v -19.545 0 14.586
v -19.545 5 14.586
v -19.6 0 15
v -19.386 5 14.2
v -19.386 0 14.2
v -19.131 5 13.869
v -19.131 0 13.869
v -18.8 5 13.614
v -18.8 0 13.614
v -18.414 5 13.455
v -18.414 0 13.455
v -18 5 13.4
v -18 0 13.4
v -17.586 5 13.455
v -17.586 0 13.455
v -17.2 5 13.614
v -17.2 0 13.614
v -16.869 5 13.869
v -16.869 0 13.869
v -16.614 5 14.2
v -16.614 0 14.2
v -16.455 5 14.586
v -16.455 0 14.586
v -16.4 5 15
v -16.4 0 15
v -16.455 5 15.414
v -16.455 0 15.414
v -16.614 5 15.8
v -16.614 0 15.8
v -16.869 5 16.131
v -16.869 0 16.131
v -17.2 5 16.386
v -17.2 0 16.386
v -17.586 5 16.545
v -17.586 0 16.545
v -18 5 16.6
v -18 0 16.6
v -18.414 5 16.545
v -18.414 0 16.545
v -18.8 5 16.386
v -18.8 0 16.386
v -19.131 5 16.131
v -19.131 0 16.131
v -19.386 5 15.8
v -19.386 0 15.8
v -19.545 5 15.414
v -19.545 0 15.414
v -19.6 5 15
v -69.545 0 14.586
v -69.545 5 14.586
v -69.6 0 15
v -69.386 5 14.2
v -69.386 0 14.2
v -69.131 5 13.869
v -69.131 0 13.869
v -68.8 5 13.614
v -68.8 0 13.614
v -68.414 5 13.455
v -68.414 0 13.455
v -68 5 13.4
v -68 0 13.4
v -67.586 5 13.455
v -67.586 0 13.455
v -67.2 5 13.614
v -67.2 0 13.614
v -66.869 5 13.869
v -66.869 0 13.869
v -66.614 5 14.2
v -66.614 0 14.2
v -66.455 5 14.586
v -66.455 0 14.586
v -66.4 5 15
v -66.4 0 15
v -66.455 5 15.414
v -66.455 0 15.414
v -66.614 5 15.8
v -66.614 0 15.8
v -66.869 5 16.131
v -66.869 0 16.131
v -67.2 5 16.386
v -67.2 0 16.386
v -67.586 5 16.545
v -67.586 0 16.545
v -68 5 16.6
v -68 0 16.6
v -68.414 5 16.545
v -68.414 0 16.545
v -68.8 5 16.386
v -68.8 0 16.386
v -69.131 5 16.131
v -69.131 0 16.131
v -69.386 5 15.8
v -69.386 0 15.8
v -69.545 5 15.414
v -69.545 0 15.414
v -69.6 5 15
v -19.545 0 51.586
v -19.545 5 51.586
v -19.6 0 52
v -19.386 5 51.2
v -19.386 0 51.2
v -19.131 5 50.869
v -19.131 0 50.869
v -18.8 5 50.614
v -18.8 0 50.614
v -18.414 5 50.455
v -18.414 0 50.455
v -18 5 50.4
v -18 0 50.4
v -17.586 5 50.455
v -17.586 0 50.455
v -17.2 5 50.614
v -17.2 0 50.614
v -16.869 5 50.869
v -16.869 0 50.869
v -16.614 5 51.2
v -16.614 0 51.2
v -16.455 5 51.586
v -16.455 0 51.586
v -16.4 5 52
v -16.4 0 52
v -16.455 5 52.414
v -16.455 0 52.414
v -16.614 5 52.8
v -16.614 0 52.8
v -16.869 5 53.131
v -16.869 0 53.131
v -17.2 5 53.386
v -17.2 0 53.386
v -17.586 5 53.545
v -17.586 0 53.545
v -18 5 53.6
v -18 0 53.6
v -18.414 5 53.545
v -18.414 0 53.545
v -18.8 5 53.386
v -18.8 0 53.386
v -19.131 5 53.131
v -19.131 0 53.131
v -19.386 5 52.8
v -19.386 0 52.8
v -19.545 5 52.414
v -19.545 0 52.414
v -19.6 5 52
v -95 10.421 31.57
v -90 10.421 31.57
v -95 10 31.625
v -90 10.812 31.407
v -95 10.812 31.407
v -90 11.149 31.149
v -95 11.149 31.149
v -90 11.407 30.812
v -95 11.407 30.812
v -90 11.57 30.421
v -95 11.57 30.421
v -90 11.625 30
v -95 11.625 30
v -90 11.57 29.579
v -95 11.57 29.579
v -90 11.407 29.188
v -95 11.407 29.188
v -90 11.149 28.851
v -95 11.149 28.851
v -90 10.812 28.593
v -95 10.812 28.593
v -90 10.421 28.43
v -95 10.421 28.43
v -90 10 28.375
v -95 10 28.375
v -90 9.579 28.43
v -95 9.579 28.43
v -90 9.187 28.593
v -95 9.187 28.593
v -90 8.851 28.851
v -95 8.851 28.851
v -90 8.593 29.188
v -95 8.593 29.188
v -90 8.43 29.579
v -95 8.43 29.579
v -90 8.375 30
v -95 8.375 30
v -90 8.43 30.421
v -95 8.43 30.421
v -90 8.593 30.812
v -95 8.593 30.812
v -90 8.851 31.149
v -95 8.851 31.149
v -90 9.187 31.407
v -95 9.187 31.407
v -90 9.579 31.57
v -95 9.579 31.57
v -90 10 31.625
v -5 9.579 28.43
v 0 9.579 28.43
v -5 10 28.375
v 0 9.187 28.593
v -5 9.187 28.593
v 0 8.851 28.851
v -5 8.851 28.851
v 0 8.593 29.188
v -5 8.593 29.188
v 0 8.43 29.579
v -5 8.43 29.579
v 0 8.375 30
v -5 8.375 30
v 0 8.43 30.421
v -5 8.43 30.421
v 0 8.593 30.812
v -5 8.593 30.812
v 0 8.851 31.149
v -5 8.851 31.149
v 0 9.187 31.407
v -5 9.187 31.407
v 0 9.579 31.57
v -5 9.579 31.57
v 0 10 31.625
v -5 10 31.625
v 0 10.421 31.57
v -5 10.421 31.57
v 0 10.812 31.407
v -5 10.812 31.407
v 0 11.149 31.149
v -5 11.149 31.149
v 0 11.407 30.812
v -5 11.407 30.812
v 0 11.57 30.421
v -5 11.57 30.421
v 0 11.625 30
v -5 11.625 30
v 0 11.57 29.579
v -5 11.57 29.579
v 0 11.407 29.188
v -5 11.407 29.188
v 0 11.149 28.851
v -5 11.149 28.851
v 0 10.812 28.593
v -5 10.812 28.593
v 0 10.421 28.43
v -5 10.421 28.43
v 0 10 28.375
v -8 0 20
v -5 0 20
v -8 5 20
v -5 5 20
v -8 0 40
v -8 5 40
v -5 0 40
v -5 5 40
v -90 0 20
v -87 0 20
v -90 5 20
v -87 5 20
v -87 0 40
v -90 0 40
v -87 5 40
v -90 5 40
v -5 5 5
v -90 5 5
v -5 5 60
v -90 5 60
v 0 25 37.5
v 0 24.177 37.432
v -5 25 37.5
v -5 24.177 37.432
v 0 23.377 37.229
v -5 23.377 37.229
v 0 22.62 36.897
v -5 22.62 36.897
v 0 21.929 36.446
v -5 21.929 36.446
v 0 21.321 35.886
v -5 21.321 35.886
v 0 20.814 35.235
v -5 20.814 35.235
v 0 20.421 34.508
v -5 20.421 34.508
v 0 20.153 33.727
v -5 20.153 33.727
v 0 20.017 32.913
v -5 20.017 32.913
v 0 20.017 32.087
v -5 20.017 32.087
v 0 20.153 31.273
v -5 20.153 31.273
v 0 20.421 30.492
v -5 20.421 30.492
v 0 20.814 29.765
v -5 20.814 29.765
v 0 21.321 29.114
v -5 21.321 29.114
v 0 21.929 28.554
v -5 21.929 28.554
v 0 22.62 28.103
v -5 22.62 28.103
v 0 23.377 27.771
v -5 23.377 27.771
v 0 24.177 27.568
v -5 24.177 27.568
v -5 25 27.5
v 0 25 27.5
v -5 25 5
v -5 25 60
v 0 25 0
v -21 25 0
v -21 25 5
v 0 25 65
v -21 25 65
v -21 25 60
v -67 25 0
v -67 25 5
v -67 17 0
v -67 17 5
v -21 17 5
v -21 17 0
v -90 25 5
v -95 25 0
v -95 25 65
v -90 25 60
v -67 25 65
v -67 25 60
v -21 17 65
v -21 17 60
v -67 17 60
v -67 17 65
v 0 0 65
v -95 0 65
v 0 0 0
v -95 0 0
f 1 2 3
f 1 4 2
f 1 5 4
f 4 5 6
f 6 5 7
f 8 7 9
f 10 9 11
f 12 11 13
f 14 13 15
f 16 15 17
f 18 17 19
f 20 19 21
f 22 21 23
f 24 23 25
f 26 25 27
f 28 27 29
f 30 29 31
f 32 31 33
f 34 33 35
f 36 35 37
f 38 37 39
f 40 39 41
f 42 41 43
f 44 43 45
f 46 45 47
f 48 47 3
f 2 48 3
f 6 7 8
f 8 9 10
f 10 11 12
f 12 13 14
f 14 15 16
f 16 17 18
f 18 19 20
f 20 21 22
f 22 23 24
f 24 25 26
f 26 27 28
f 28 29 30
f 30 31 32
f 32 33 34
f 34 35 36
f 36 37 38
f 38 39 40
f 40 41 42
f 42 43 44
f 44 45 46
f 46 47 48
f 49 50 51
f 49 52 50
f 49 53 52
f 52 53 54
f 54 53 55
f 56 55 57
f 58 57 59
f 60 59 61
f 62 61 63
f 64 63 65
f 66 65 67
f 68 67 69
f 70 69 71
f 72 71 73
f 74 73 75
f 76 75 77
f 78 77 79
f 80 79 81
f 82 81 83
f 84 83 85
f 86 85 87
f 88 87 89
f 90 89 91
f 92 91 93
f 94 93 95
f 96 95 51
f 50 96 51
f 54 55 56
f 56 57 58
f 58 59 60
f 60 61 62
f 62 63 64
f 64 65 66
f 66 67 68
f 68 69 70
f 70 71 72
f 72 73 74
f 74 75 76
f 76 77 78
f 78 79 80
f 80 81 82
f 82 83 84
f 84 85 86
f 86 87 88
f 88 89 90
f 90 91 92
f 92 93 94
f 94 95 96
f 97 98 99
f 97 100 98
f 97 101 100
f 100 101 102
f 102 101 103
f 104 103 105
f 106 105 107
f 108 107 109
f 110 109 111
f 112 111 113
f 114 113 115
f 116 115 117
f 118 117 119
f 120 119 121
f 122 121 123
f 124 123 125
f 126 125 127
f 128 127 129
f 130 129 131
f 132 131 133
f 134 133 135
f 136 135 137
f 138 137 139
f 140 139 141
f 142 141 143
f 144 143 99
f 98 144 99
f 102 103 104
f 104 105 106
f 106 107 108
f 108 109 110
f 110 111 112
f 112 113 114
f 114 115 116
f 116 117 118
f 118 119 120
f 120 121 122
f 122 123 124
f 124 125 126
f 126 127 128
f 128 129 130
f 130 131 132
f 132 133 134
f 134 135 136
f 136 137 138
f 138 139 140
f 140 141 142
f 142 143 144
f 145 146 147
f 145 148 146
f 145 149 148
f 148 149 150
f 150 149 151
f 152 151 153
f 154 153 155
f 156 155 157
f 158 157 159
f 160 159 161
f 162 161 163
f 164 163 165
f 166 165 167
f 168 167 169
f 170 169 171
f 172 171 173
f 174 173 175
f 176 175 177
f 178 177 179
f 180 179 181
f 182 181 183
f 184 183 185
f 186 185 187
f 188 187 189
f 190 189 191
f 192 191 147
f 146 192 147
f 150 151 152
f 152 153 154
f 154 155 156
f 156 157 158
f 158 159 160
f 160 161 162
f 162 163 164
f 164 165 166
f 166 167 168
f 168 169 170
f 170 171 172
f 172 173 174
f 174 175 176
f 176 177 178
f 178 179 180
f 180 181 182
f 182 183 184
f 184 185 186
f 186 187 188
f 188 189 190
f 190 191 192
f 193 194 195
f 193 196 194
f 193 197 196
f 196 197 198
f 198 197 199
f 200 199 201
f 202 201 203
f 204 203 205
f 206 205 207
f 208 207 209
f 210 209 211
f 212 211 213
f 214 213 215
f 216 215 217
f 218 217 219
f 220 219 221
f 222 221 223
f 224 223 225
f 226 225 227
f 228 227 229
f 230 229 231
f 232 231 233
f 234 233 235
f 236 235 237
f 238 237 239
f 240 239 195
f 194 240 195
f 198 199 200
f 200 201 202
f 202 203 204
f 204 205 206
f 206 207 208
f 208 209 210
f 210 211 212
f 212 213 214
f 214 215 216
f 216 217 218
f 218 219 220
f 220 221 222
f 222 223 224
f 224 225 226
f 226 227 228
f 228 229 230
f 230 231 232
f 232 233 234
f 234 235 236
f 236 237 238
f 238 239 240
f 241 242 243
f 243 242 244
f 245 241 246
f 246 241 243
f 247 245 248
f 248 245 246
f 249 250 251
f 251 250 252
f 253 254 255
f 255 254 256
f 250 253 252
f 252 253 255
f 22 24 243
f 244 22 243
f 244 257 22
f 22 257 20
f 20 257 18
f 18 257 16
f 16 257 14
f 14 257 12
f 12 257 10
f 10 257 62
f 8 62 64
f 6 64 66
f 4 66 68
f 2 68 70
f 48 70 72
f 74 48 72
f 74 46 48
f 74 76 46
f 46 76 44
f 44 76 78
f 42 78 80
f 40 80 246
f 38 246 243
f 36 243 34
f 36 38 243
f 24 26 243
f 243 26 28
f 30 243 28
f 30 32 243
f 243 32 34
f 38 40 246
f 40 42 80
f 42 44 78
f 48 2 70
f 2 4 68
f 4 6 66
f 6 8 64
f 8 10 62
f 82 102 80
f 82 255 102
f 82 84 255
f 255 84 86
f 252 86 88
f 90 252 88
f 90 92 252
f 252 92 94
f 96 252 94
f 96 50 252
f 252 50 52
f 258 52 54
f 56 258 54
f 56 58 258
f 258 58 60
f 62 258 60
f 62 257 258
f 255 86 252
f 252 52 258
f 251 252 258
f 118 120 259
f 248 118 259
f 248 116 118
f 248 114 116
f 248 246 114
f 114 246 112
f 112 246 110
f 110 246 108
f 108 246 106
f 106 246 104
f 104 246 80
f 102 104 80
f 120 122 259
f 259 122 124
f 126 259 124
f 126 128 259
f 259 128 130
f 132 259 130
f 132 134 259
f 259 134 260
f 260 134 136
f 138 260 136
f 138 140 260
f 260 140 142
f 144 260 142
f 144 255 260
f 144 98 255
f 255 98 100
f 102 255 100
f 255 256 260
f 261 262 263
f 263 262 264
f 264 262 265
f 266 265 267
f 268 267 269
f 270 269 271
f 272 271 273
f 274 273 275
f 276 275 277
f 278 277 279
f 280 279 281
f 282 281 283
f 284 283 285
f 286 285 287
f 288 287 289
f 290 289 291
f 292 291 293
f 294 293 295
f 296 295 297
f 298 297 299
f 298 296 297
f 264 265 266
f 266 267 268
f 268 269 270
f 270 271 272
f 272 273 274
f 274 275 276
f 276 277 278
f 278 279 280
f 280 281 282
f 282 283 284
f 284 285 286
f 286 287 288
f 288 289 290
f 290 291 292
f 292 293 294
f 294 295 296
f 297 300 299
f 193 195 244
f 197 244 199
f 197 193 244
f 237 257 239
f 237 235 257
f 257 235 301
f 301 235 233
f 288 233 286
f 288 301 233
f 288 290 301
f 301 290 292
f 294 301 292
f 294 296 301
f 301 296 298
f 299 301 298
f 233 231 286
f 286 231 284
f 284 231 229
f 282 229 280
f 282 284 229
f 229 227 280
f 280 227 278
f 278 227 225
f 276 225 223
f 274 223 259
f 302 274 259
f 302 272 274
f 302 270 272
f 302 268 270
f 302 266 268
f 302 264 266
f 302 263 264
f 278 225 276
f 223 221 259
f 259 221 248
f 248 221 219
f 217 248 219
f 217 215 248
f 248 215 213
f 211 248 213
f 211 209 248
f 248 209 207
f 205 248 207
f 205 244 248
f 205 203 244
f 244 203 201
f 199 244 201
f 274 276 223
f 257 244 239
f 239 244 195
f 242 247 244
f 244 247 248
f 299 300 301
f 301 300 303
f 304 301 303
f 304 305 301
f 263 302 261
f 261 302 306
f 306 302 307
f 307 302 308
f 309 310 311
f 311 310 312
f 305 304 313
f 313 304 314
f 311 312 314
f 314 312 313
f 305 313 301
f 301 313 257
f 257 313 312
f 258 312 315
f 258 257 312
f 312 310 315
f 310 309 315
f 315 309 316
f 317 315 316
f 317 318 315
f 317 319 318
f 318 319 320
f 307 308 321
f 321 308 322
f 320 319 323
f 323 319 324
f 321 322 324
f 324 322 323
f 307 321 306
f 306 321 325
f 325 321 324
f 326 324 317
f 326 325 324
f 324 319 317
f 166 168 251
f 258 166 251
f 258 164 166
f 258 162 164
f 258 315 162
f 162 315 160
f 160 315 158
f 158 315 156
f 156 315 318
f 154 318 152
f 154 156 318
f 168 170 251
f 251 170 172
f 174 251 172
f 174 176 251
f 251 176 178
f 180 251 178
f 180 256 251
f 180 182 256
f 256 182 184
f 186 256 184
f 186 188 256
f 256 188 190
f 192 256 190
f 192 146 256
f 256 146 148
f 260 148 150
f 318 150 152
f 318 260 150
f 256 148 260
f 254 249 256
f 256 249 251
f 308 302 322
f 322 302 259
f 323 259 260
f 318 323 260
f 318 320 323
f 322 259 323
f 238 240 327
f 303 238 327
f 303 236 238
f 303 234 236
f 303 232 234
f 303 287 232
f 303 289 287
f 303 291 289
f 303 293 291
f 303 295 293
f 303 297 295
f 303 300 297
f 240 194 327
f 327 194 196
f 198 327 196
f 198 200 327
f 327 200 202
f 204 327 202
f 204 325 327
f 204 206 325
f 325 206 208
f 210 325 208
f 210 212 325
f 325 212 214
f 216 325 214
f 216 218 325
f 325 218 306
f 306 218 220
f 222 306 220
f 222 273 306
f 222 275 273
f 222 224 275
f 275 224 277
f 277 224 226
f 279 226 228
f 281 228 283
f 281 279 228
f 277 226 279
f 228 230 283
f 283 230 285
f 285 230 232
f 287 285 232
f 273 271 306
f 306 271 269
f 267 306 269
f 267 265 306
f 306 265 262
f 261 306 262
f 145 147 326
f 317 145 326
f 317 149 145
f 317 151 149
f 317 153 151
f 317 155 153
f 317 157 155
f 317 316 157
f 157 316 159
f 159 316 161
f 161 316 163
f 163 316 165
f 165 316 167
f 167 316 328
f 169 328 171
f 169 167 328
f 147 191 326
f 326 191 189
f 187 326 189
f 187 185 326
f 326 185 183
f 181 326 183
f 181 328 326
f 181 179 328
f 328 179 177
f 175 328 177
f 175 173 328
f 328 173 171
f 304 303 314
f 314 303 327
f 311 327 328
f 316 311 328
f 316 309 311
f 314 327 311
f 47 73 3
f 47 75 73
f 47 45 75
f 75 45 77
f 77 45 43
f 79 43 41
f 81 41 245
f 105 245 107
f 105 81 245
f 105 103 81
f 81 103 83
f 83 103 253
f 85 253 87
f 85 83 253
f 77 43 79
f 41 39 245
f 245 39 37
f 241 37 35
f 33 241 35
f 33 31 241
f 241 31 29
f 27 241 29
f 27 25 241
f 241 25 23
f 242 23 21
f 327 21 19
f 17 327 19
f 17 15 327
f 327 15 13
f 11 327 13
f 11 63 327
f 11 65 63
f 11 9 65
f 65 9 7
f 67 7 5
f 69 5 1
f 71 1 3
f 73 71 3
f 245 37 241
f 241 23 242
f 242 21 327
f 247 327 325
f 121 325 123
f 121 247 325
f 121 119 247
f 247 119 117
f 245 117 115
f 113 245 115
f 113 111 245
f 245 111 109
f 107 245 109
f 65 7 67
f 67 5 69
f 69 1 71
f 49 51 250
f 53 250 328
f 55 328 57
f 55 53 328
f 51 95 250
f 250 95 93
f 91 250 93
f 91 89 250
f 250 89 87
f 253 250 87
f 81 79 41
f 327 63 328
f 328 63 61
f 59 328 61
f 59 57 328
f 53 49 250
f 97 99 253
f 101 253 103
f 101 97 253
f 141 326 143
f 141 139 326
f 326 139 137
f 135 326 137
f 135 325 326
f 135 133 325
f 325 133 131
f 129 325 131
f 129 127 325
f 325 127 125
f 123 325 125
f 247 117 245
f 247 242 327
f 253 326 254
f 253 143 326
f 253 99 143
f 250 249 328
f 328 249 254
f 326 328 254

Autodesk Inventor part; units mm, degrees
ref_plane "YZ Plane" through (0, 0, 0) normal (1, 0, 0) x (0, 1, 0)
ref_plane "XZ Plane" through (0, 0, 0) normal (0, 1, 0) x (-1, 0, 0)
ref_plane "XY Plane" through (0, 0, 0) normal (0, 0, 1) x (1, 0, 0)
sketch "Sketch1" plane through (0, 0, 0) normal (0, 1, 0) x (-1, 0, 0)
  line L0 (0, 0) -> (95, 0)
  line L1 (95, 0) -> (95, 65)
  line L2 (95, 65) -> (0, 65)
  line L3 (0, 65) -> (0, 0)
  dimension "d0" = 95
  dimension "d1" = 65
extrude "Extrusion1" add sketch "Sketch1" along normal blind 25
sketch "Sketch2" plane through (0, 25, 0) normal (0, 1, 0) x (1, 0, 0)
  line L0 (-5, -5) -> (-90, -5)
  line L1 (-90, -5) -> (-90, -60)
  line L2 (-90, -60) -> (-5, -60)
  line L3 (-5, -60) -> (-5, -5)
extrude "Extrusion2" cut sketch "Sketch2" against normal blind 20
sketch "Sketch3" plane through (0, 25, 0) normal (0, 1, 0) x (1, 0, 0)
  line L0 (-5, -60) -> (-90, -60) projected
  line L1 (-95, -65) -> (0, -65) projected
  line L2 (-67, -65) -> (-67, -60)
  line L3 (-21, -60) -> (-21, -65)
  line L4 (-90, -5) -> (-5, -5) projected
  line L5 (0, 0) -> (-95, 0) projected
  line L6 (0, -65) -> (0, 0) projected
  line L7 (-67, -5) -> (-67, 0)
  line L8 (-21, -5) -> (-21, 0)
  line L9 (-67, 0) -> (-21, 0)
  line L10 (-21, -5) -> (-67, -5)
  dimension "d6" = 28
  dimension "d7" = 21
extrude "Extrusion4" cut sketch "Sketch3" against normal blind 8 contours L3 L1 L2 L0
extrude "Extrusion5" cut sketch "Sketch3" against normal blind 8 contours L8 L4 L7 L5
sketch "Sketch4" plane through (0, 0, 65) normal (1, 0, 0) x (0, 0, -1)
  line L0 (0, 25) -> (65, 25) projected
  circle A0 centre (32.5, 25) radius 5
  dimension "d14" = 10
extrude "Extrusion6" cut sketch "Sketch4" against normal blind 8
sketch "Sketch5" plane through (0, 5, 0) normal (0, 1, 0) x (1, 0, 0)
  line L0 (-90, -5) -> (-5, -5) projected
  line L1 (-90, -60) -> (-90, -5) projected
  line L2 (-90, -20) -> (-87, -20)
  line L3 (-87, -20) -> (-87, -40)
  line L4 (-87, -40) -> (-90, -40)
  line L5 (-90, -40) -> (-90, -20)
  point P0 (0, 0)
  dimension "d17" = 3
  dimension "d18" = 20
  dimension "d19" = 15
extrude "Extrusion7" cut sketch "Sketch5" against normal blind 8
sketch "Sketch6" plane through (0, 5, 0) normal (0, 1, 0) x (1, 0, 0)
  line L0 (-5, -5) -> (-5, -60) projected
  line L1 (-90, -20) -> (-90, -5) projected
  line L2 (-5, -20) -> (-8, -20)
  line L3 (-8, -20) -> (-8, -40)
  line L4 (-8, -40) -> (-5, -40)
  point P0 (0, 0)
  dimension "d22" = 3
  dimension "d23" = 20
extrude "Extrusion8" cut sketch "Sketch6" against normal blind 8
sketch "Sketch7" plane through (-95, 0, 0) normal (-1, 0, 0) x (0, 0, 1)
  line L0 (0, 0) -> (65, 0) projected
  line L1 (0, 0) -> (0, 25) projected
  circle A0 centre (30, 10) radius 1.625
  dimension "d26" = 3.25
  dimension "d27" = 10
  dimension "d28" = 30
hole "Hole1" at (-95, 10, 30) direction (1, 0, 0) diameter 3.25 end through all
sketch "Sketch8" plane through (0, 5, 0) normal (0, 1, 0) x (1, 0, 0)
  line L0 (-5, -5) -> (-5, -20) projected
  line L1 (-90, -5) -> (-5, -5) projected
  line L2 (-90, -20) -> (-90, -5) projected
  line L3 (-5, -60) -> (-90, -60) projected
  circle A0 centre (-68, -15) radius 1.6
  circle A1 centre (-18, -15) radius 1.6
  circle A2 centre (-18, -52) radius 1.6
  line L4 (-5, -40) -> (-5, -60) projected
  point P0 (0, 0)
  dimension "d36" = 3.2
  dimension "d39" = 3.2
  dimension "d50" = 22
  dimension "d51" = 10
  dimension "d52" = 10
  dimension "d53" = 13
  dimension "d54" = 13
  dimension "d55" = 8
hole "Hole2" at (-68, 5, 15) at (-18, 5, 15) at (-18, 5, 52) direction (0, -1, 0) diameter 3.2 end through all
properties part number "MAINCHAMBER"
